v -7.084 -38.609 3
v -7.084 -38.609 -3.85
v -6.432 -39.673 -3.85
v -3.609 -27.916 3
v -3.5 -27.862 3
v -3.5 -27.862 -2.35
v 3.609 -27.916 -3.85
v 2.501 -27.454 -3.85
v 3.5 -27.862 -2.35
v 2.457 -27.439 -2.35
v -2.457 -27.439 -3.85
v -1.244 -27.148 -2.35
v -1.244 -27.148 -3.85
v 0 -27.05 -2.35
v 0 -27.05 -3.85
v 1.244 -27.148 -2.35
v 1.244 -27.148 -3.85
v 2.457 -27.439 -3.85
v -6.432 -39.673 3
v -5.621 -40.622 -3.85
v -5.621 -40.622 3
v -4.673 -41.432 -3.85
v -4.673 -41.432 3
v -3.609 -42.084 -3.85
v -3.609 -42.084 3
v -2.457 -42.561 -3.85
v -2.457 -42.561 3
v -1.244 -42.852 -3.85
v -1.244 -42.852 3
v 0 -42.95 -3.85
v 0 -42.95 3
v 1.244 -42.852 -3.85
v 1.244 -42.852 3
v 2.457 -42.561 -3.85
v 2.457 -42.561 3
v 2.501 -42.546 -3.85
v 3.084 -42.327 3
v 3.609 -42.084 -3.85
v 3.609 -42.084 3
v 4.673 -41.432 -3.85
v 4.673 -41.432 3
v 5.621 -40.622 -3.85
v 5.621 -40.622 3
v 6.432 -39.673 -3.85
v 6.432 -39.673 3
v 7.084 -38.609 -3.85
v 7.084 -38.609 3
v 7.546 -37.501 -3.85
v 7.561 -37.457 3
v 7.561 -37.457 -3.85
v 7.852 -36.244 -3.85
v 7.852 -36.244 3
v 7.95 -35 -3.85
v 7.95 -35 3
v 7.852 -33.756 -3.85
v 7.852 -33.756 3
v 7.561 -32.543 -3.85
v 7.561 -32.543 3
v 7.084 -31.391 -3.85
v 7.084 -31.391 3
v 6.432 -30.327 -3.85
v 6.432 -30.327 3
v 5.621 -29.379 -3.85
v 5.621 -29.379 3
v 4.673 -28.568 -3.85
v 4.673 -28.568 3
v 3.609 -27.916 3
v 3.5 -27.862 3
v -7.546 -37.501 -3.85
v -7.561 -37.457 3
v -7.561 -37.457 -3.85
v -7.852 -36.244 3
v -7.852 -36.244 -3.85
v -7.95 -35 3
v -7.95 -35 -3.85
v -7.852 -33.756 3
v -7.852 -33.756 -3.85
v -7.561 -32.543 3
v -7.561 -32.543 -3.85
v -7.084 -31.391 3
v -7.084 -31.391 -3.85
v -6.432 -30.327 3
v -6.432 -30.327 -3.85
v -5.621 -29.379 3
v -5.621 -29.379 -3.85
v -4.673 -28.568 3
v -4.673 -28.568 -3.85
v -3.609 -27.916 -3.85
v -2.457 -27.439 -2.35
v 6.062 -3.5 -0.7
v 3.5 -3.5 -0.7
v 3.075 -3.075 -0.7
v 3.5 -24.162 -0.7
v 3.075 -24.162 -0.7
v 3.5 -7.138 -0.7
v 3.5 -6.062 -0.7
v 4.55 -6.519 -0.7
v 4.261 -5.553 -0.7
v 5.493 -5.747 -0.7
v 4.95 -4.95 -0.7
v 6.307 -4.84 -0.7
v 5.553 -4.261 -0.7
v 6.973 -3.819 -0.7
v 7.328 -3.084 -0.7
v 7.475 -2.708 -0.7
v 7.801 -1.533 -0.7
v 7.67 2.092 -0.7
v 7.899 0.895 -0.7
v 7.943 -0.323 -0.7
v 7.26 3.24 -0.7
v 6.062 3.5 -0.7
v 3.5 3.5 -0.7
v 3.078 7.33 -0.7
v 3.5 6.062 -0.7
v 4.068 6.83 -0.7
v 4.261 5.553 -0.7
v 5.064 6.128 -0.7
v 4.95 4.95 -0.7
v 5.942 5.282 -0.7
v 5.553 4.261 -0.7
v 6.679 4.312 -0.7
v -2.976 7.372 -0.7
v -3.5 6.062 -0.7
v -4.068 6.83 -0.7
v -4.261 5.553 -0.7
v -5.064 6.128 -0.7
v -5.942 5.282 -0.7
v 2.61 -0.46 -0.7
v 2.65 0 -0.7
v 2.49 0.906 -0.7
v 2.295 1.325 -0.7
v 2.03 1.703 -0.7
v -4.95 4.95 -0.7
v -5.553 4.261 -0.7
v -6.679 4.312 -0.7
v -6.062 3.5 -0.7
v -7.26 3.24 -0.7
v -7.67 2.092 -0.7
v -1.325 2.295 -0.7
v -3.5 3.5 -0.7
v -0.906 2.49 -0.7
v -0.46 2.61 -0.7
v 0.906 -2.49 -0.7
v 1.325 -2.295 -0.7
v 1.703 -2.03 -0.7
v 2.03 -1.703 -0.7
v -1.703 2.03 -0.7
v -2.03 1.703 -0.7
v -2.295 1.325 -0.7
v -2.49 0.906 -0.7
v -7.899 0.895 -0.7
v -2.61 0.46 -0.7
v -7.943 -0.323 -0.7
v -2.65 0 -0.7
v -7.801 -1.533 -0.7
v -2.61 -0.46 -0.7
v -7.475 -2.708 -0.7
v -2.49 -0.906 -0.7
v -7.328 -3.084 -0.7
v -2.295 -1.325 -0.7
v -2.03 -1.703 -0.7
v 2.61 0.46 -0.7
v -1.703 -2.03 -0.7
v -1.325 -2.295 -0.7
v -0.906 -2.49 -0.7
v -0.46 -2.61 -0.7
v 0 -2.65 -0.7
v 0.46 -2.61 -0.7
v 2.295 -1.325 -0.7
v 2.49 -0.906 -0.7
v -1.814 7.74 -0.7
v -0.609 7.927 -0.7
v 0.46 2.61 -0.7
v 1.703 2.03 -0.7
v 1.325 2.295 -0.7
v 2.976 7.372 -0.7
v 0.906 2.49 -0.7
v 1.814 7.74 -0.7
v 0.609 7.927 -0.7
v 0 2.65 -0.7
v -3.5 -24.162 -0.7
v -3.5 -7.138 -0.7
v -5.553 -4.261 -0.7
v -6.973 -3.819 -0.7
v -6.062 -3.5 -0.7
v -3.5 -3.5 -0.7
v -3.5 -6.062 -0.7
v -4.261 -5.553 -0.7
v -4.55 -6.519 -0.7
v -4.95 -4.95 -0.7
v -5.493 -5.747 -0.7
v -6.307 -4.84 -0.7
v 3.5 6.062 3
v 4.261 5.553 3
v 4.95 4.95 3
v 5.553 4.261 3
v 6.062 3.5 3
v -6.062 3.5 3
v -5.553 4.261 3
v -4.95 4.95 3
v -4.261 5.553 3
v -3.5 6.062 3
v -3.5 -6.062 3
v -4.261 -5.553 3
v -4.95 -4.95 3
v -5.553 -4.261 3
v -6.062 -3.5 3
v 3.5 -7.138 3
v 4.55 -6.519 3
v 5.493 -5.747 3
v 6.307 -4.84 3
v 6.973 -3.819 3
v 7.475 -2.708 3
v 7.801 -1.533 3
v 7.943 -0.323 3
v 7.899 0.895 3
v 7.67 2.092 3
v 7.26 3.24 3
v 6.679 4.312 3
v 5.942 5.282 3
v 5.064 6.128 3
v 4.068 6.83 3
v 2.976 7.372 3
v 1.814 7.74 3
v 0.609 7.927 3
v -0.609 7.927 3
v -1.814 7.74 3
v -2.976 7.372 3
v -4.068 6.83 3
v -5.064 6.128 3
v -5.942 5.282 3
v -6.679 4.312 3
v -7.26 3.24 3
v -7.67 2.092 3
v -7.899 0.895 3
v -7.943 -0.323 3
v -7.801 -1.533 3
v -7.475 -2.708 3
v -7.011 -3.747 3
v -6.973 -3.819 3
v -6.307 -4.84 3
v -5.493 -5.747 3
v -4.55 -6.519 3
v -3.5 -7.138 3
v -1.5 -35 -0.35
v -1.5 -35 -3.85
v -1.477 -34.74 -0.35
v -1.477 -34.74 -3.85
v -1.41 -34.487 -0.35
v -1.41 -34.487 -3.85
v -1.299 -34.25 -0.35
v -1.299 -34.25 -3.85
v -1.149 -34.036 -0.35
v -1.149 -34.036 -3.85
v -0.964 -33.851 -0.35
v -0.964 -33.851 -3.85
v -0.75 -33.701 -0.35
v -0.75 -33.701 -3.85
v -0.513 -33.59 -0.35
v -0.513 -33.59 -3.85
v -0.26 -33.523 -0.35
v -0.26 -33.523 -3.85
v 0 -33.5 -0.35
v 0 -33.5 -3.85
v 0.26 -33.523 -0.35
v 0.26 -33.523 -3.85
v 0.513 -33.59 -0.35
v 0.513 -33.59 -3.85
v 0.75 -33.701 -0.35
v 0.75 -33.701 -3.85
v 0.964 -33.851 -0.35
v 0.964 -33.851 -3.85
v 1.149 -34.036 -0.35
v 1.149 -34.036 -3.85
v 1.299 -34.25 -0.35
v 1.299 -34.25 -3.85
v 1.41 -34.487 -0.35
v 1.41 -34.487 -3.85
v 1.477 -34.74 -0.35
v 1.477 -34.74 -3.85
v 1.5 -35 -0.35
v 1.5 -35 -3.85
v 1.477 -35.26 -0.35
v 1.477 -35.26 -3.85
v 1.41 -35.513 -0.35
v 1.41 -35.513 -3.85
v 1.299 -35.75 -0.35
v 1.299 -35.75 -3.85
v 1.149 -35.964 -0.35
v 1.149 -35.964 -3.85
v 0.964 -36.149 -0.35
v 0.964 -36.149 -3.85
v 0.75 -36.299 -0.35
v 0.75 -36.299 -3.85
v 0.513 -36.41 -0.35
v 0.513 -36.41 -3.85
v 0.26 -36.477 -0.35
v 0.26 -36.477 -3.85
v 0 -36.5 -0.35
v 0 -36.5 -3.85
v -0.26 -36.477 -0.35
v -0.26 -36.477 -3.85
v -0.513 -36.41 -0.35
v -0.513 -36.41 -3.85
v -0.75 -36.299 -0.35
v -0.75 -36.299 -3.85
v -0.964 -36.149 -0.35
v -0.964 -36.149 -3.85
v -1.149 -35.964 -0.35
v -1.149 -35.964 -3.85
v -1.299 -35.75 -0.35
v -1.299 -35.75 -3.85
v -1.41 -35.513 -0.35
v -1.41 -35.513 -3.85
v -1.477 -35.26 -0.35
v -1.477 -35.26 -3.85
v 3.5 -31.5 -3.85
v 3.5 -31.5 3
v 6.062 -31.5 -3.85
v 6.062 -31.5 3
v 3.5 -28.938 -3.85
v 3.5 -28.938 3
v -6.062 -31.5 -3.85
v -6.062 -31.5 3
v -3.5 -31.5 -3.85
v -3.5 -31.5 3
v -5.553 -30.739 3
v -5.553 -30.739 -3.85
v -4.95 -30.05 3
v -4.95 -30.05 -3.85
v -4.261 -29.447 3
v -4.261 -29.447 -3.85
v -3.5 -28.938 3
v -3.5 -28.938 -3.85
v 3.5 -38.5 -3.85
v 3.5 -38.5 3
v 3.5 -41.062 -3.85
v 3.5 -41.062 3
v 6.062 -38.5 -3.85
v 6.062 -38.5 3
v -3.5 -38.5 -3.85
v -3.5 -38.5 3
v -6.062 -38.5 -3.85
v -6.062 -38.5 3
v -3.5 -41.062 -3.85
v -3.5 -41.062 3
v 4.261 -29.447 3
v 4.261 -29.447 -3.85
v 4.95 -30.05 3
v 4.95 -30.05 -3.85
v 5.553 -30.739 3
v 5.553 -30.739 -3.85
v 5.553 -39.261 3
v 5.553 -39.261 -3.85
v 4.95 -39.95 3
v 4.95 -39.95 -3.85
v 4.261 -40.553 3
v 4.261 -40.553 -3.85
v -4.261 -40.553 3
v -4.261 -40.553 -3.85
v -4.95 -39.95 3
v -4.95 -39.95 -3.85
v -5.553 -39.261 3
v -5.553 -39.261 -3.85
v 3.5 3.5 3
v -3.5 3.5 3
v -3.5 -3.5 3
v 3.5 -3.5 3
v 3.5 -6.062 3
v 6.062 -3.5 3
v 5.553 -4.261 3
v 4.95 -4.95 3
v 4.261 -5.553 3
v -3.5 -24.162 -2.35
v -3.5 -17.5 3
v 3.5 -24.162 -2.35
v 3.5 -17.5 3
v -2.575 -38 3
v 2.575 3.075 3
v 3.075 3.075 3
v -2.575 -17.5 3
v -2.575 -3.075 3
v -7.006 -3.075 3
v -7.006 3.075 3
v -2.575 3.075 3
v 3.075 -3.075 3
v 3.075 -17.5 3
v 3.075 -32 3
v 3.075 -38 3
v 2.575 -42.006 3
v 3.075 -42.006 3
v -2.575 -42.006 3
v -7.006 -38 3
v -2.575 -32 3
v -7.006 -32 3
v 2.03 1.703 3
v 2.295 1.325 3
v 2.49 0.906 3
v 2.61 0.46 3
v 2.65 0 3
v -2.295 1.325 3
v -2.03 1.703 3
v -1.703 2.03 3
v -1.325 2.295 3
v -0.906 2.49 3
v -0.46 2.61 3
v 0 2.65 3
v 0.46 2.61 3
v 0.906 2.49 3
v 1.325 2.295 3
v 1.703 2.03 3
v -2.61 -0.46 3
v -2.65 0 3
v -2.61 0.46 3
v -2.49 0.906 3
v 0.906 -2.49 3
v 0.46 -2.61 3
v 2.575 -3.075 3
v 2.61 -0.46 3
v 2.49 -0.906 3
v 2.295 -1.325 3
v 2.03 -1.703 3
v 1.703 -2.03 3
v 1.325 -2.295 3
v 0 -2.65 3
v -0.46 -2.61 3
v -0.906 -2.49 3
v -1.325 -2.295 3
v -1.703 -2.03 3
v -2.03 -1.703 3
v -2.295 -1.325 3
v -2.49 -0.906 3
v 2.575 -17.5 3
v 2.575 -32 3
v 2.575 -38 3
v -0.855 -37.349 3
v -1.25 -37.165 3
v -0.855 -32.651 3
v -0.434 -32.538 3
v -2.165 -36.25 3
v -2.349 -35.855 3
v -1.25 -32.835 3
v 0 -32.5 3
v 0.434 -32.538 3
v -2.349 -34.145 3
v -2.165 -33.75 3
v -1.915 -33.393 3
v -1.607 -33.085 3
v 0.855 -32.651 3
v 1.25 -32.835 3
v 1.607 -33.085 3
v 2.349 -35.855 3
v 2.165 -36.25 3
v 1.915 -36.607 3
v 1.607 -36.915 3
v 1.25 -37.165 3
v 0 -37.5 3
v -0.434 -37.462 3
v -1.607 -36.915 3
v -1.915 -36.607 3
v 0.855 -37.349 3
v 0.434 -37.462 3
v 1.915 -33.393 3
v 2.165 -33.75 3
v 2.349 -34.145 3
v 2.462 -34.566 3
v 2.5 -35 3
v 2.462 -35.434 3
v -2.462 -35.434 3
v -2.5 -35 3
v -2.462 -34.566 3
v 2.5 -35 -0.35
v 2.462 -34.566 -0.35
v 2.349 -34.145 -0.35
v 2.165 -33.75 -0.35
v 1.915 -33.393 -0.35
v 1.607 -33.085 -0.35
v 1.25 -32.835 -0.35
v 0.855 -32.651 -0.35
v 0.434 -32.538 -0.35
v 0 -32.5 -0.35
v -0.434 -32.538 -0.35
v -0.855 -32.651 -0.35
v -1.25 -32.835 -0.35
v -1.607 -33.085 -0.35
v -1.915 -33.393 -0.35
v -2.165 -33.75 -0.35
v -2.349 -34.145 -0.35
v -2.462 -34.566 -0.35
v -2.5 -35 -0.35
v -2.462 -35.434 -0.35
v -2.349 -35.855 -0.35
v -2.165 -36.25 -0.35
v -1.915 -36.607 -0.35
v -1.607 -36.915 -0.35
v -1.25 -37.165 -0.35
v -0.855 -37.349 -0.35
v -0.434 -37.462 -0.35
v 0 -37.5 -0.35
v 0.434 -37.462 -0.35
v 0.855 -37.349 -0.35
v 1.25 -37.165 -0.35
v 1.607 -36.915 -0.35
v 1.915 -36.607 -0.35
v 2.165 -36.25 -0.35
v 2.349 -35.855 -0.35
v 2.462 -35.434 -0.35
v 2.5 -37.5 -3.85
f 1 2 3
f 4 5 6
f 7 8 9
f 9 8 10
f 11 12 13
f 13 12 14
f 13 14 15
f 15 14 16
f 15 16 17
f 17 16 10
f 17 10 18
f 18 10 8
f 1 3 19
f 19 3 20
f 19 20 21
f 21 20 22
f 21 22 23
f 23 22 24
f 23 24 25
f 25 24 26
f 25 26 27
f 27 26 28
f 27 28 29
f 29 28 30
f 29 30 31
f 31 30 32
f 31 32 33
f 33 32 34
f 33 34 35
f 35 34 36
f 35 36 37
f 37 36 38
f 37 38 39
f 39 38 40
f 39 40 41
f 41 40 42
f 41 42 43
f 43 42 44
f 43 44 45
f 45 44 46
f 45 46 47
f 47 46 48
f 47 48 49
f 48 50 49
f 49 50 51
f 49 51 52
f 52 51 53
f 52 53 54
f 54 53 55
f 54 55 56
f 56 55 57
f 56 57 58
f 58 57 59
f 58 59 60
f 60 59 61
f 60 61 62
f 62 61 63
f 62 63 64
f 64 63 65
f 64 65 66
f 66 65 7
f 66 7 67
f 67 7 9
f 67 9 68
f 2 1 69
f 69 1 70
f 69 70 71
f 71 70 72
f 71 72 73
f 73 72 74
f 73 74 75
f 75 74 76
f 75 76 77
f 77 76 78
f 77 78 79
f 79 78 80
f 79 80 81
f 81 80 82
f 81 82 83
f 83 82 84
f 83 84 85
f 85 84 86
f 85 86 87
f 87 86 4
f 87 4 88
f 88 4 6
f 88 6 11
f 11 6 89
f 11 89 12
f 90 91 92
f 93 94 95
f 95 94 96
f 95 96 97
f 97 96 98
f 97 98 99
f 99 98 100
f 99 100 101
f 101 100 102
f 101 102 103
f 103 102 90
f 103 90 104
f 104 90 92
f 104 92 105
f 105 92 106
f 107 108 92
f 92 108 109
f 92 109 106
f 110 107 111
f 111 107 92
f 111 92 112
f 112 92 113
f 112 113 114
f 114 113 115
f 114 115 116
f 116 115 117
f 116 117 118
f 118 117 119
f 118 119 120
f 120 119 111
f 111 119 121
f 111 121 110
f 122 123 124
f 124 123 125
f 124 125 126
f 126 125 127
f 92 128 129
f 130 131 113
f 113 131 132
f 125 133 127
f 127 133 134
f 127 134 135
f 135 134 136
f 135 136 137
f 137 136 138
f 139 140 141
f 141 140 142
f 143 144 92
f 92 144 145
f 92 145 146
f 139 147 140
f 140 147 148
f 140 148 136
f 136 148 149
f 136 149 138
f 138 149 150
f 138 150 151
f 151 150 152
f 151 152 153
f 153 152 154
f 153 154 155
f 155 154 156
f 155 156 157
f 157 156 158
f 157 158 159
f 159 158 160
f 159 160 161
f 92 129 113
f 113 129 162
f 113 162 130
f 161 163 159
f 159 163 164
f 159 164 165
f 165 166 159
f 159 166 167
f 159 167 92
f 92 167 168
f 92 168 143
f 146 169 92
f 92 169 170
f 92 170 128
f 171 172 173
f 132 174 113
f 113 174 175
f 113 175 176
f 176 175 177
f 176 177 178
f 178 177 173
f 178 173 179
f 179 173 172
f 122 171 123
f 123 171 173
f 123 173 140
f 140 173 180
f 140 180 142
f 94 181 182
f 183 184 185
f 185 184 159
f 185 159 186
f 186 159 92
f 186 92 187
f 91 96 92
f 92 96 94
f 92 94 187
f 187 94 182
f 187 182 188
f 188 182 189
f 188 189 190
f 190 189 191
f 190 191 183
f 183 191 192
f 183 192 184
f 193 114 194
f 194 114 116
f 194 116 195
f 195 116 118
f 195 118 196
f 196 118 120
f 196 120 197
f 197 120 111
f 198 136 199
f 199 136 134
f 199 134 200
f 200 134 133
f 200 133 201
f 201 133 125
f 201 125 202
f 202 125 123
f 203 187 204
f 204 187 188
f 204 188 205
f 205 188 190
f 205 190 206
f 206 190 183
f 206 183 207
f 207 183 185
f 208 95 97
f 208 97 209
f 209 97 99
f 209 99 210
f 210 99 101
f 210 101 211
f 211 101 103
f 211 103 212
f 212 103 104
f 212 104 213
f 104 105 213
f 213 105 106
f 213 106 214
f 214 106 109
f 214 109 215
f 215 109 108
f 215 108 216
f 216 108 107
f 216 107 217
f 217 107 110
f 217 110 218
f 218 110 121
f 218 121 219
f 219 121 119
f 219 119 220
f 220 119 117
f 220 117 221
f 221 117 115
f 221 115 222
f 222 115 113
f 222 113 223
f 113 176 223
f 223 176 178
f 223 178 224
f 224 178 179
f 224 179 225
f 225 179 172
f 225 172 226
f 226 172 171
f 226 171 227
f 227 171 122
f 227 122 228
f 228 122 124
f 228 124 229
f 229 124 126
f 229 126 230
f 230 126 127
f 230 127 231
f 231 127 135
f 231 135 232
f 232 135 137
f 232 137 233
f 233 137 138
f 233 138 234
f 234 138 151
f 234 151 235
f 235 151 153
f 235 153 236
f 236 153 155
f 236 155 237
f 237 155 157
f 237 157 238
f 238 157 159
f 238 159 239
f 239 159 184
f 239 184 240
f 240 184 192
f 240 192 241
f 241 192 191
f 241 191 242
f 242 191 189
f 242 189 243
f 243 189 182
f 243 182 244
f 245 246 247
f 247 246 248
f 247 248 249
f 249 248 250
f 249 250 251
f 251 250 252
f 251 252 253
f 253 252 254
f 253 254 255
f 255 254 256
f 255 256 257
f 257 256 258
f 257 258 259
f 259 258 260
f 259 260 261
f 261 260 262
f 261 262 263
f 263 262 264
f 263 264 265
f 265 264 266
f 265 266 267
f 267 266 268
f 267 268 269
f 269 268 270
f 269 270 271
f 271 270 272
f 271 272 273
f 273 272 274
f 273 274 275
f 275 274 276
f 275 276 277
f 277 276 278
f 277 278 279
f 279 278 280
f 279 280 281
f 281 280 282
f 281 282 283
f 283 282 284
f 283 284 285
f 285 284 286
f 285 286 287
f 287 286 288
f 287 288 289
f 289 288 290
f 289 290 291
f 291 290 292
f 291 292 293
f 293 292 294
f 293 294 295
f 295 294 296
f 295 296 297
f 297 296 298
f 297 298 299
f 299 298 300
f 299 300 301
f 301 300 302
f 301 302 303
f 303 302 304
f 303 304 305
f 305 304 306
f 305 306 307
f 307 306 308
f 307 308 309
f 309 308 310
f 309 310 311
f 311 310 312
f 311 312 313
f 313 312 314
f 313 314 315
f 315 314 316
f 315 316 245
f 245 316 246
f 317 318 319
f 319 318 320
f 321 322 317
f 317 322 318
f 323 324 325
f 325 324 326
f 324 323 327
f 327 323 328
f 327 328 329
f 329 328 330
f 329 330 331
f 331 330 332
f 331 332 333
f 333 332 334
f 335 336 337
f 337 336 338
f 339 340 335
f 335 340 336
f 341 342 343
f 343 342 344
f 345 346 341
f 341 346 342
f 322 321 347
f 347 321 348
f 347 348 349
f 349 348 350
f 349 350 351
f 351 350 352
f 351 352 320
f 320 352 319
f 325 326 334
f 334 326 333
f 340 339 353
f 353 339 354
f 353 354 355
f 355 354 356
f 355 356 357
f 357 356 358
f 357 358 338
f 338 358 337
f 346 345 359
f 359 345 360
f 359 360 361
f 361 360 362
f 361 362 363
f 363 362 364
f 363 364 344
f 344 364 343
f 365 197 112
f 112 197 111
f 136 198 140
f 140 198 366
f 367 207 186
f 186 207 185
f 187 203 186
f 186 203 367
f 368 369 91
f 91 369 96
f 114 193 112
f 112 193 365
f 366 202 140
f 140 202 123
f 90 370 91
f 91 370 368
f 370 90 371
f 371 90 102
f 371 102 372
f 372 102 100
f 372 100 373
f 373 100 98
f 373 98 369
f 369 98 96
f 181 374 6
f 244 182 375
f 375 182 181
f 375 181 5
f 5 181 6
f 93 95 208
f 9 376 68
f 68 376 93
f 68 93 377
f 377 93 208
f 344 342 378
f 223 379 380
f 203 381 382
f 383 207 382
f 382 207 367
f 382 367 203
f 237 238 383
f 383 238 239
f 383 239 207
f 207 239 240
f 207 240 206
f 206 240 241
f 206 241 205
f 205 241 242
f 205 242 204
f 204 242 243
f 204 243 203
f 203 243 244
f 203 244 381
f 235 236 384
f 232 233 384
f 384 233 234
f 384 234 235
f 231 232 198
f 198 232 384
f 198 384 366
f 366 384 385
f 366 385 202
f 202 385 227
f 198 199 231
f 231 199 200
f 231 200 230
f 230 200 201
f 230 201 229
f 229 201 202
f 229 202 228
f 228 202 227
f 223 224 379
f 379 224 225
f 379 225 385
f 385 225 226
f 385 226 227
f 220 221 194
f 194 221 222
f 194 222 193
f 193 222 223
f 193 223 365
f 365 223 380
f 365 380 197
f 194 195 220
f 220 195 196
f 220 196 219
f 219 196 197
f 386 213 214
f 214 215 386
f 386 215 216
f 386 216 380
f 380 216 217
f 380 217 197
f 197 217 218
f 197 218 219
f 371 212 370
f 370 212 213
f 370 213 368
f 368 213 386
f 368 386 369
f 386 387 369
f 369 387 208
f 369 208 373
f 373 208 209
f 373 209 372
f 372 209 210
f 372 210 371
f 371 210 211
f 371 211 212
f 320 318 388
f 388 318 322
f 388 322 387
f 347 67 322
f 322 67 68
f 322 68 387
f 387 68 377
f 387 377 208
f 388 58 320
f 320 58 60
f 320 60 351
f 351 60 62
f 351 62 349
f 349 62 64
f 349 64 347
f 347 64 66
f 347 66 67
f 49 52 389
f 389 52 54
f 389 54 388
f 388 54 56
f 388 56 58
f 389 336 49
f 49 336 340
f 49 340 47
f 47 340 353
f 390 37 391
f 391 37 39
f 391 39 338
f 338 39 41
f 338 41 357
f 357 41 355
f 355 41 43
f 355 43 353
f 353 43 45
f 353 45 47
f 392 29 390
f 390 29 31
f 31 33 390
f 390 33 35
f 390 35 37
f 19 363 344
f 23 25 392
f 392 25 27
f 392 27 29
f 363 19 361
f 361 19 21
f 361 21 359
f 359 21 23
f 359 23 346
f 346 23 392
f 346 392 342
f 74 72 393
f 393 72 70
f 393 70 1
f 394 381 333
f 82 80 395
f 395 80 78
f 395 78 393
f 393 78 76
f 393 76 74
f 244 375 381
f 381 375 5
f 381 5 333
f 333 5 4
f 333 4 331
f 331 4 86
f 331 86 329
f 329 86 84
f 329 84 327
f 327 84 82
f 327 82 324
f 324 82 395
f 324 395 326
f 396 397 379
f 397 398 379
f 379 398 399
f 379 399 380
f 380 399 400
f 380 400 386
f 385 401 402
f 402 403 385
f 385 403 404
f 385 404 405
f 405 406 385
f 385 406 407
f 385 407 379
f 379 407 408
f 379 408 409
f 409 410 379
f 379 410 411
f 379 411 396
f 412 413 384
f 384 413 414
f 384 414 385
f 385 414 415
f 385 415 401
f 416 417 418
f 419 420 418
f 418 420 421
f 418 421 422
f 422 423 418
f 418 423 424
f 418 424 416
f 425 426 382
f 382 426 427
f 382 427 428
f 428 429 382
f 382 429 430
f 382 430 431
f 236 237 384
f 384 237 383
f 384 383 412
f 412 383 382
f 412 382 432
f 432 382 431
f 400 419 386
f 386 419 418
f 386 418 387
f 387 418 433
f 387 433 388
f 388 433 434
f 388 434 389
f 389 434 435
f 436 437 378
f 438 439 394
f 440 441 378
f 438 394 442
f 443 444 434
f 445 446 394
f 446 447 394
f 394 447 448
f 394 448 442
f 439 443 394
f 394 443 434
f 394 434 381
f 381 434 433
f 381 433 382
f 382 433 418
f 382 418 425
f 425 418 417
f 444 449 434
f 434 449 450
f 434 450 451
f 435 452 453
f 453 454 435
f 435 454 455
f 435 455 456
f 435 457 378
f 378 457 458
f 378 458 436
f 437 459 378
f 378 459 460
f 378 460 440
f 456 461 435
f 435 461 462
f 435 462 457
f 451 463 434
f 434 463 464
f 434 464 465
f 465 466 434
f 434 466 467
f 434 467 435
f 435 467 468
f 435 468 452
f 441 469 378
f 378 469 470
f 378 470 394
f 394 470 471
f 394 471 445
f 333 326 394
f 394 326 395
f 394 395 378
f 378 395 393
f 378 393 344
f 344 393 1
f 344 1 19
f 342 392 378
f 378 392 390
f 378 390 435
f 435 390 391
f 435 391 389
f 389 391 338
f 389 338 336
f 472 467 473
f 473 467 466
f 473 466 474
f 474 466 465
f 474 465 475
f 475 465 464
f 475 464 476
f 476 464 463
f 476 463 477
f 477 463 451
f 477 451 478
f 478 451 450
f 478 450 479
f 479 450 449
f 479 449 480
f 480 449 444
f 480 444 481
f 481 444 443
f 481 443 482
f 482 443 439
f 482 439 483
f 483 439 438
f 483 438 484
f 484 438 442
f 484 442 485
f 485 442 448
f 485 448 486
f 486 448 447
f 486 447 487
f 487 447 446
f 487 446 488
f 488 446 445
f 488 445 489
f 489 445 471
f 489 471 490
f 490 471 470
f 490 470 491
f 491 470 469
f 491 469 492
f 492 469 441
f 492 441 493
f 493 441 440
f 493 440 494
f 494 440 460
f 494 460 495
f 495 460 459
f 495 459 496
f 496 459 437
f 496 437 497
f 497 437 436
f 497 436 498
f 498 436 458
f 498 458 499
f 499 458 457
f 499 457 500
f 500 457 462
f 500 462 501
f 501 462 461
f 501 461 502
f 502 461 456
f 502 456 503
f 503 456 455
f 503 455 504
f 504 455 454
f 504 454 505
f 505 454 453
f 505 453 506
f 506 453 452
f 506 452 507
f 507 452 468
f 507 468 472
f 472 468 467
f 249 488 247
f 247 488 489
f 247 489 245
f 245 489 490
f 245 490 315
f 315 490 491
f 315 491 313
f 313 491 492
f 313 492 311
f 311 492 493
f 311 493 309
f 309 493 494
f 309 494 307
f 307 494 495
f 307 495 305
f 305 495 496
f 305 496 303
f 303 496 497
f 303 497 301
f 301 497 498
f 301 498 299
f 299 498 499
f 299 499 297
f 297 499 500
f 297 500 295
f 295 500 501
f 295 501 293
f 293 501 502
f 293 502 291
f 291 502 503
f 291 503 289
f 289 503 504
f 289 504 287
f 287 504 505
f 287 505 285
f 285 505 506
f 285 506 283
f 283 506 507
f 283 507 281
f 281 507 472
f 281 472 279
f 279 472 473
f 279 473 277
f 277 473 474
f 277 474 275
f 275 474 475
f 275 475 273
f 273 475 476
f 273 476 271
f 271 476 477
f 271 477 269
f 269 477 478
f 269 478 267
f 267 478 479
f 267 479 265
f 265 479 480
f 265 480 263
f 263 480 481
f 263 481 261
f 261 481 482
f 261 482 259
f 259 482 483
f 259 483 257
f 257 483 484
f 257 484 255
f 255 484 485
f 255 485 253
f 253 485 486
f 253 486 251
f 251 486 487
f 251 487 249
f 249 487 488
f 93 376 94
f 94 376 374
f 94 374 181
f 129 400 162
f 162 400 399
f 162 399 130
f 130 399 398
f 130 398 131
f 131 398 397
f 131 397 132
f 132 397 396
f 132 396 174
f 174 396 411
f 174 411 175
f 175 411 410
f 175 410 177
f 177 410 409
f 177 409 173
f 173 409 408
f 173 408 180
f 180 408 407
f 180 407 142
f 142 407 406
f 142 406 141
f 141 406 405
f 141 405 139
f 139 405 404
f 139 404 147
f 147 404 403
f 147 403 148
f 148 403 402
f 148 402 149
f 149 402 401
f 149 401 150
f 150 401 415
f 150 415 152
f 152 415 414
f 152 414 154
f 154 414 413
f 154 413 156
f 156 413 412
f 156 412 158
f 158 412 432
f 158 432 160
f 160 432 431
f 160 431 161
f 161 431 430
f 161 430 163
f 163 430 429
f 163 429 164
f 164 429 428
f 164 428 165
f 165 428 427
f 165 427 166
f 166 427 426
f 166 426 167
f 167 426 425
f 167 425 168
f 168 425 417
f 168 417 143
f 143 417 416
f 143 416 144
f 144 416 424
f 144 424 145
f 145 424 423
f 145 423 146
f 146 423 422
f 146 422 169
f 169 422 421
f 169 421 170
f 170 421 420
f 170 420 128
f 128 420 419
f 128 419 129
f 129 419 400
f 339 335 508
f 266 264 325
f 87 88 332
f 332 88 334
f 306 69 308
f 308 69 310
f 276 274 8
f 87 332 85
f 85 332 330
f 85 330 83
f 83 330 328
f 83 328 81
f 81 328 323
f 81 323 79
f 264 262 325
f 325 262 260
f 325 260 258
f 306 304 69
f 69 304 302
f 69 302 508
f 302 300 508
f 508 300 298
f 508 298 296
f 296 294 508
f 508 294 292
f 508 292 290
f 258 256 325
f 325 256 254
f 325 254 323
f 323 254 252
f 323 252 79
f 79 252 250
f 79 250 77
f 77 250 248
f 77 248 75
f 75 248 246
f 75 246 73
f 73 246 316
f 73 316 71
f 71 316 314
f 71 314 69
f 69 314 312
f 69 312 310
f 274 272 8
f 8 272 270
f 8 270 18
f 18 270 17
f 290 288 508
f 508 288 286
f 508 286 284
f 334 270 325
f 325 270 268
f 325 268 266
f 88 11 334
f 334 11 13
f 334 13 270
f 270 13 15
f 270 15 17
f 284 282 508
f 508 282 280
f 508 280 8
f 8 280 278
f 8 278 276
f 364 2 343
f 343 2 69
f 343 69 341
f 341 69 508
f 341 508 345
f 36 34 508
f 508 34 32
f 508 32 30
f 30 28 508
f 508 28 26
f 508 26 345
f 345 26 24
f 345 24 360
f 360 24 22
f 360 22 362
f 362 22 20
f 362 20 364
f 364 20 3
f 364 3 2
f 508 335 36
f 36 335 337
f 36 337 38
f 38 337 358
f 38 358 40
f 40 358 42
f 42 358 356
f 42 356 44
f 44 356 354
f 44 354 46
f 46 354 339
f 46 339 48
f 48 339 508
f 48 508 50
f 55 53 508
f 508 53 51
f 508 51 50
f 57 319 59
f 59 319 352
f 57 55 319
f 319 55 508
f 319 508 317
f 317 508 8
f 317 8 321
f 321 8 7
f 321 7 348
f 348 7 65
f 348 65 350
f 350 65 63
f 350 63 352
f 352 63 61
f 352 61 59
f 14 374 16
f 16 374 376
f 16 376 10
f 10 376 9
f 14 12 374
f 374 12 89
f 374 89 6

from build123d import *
from build123d.topology import SkipClean

# Parameters (mm, degrees)
SKETCH1_R               = 3.5
SKETCH1_R_2             = 1.5
BOSS_EXTRUDE4_DEPTH     = 3
BOSS_EXTRUDE5_START     = 3
SKETCH3_R               = 1.5
BOSS_EXTRUDE5_DEPTH     = 3
SKETCH4_R               = 2.5
CUT_EXTRUDE1_DEPTH      = 1.5
SKETCH5_R               = 7
CUT_EXTRUDE2_DEPTH      = 2
SKETCH6_R               = 7.95
CUT_EXTRUDE3_DEPTH      = 1
SKETCH7_R               = 2.5
CUT_EXTRUDE4_DEPTH      = 1.85
BOSS_EXTRUDE6_START     = 0.7
SKETCH8_R               = 7.95
SKETCH8_R_2             = 7
BOSS_EXTRUDE6_DEPTH     = 0.7
BOSS_EXTRUDE8_START     = 0.7
SKETCH9_R               = 7.95
SKETCH9_R_2             = 1.5
BOSS_EXTRUDE8_DEPTH     = 0.7
BOSS_EXTRUDE9_START     = 0.7
BOSS_EXTRUDE9_DEPTH     = 0.7
CUT_EXTRUDE5_DEPTH      = 45.603755447
CUT_EXTRUDE5_DEPTH_BACK = 45.603755447
SKETCH11_W              = 3
SKETCH11_H              = 15.9
SKETCH11_W_2            = 2
BOSS_EXTRUDE10_START    = 0.65
BOSS_EXTRUDE10_DEPTH    = 0.65
BOSS_EXTRUDE11_START    = 2.65
SKETCH13_R              = 1.5
BOSS_EXTRUDE11_DEPTH    = 2.65
SKETCH14_R              = 2.65
CUT_EXTRUDE6_DEPTH      = 45.138730158
BOSS_EXTRUDE12_START    = 0.5
SKETCH15_R              = 7.95
SKETCH15_R_2            = 1.5
BOSS_EXTRUDE12_DEPTH    = 0.5
BOSS_EXTRUDE13_START    = 1
BOSS_EXTRUDE13_DEPTH    = 1


with BuildPart() as part:
    # Sketch1 → Boss-Extrude4 (new body)
    # profile 1 of 34: a face of its own
    with BuildSketch(Plane.XY):
        with BuildLine():
            Line((-3.5, 3.5), (0, 3.5))
            Line((0, 3.5), (3.5, 3.5))
            Line((3.5, 3.5), (3.5, 6.062177826))
            ThreePointArc((3.5, 6.062177826), (0, 7), (-3.5, 6.062177826))
            Line((-3.5, 6.062177826), (-3.5, 3.5))
        make_face()
    # profile 2 of 34: a face of its own
    with BuildSketch(Plane.XY):
        with BuildLine():
            ThreePointArc((3.5, 6.062177826), (4.949747468, 4.949747468), (6.062177826, 3.5))
            Line((6.062177826, 3.5), (7.138101989, 3.5))
            ThreePointArc((7.138101989, 3.5), (0, 7.95), (-7.138101989, 3.5))
            Line((-7.138101989, 3.5), (-6.062177826, 3.5))
            ThreePointArc((-6.062177826, 3.5), (-4.949747468, 4.949747468), (-3.5, 6.062177826))
            ThreePointArc((-3.5, 6.062177826), (0, 7), (3.5, 6.062177826))
        make_face()
    # profile 3 of 34: a face of its own
    with BuildSketch(Plane.XY):
        with BuildLine():
            Line((3.5, -27.861898011), (3.5, -7.138101989))
            ThreePointArc((3.5, -7.138101989), (0, -7.95), (-3.5, -7.138101989))
            Line((-3.5, -7.138101989), (-3.5, -27.861898011))
            ThreePointArc((-3.5, -27.861898011), (0, -27.05), (3.5, -27.861898011))
        make_face()
    # profile 4 of 34: a face of its own
    with BuildSketch(Plane.XY):
        with BuildLine():
            Line((-6.062177826, -38.5), (-7.138101989, -38.5))
            ThreePointArc((-7.138101989, -38.5), (0, -42.95), (7.138101989, -38.5))
            Line((7.138101989, -38.5), (6.062177826, -38.5))
            ThreePointArc((6.062177826, -38.5), (4.949747468, -39.949747468), (3.5, -41.062177826))
            ThreePointArc((3.5, -41.062177826), (0, -42), (-3.5, -41.062177826))
            ThreePointArc((-3.5, -41.062177826), (-4.949747468, -39.949747468), (-6.062177826, -38.5))
        make_face()
    # profile 5 of 34: a face of its own
    with BuildSketch(Plane.XY):
        with BuildLine():
            Line((3.5, -41.062177826), (3.5, -38.5))
            Line((3.5, -38.5), (0, -38.5))
            Line((0, -38.5), (-3.5, -38.5))
            Line((-3.5, -38.5), (-3.5, -41.062177826))
            ThreePointArc((-3.5, -41.062177826), (0, -42), (3.5, -41.062177826))
        make_face()
    # profile 6 of 34: a face of its own
    with BuildSketch(Plane.XY):
        with BuildLine():
            ThreePointArc((7.95, -35), (7.744366043, -33.203532746), (7.138101989, -31.5))
            Line((7.138101989, -31.5), (6.062177826, -31.5))
            ThreePointArc((6.062177826, -31.5), (6.761480784, -33.188266684), (7, -35))
            ThreePointArc((7, -35), (6.761480784, -36.811733316), (6.062177826, -38.5))
            Line((6.062177826, -38.5), (7.138101989, -38.5))
            ThreePointArc((7.138101989, -38.5), (7.744366043, -36.796467254), (7.95, -35))
        make_face()
    # profile 7 of 34: a face of its own
    with BuildSketch(Plane.XY):
        with BuildLine():
            Line((-6.062177826, -31.5), (-7.138101989, -31.5))
            ThreePointArc((-7.138101989, -31.5), (-7.95, -35), (-7.138101989, -38.5))
            Line((-7.138101989, -38.5), (-6.062177826, -38.5))
            ThreePointArc((-6.062177826, -38.5), (-7, -35), (-6.062177826, -31.5))
        make_face()
    # profile 8 of 34: a face of its own
    with BuildSketch(Plane.XY):
        with BuildLine():
            Line((3.5, -38.5), (3.5, -35))
            ThreePointArc((3.5, -35), (2.474873734, -37.474873734), (0, -38.5))
            Line((0, -38.5), (3.5, -38.5))
        make_face()
    # profile 9 of 34: a face of its own
    with BuildSketch(Plane.XY):
        with BuildLine():
            ThreePointArc((0, -38.5), (-2.474873734, -37.474873734), (-3.5, -35))
            Line((-3.5, -35), (-3.5, -38.5))
            Line((-3.5, -38.5), (0, -38.5))
        make_face()
    # profile 10 of 34: a face of its own
    with BuildSketch(Plane.XY):
        with BuildLine():
            ThreePointArc((7.95, -35), (7.744366043, -33.203532746), (7.138101989, -31.5))
            Line((7.138101989, -31.5), (6.062177826, -31.5))
            ThreePointArc((6.062177826, -31.5), (6.761480784, -33.188266684), (7, -35))
            ThreePointArc((7, -35), (6.761480784, -36.811733316), (6.062177826, -38.5))
            Line((6.062177826, -38.5), (7.138101989, -38.5))
            ThreePointArc((7.138101989, -38.5), (7.744366043, -36.796467254), (7.95, -35))
        make_face()
    # profile 11 of 34: a face of its own
    with BuildSketch(Plane.XY):
        with BuildLine():
            Line((-6.062177826, -31.5), (-7.138101989, -31.5))
            ThreePointArc((-7.138101989, -31.5), (-7.95, -35), (-7.138101989, -38.5))
            Line((-7.138101989, -38.5), (-6.062177826, -38.5))
            ThreePointArc((-6.062177826, -38.5), (-7, -35), (-6.062177826, -31.5))
        make_face()
    # profile 12 of 34: a face of its own
    with BuildSketch(Plane.XY):
        with Locations((0, -35)):
            Circle(SKETCH1_R)
        with Locations((0, -35)):
            Circle(SKETCH1_R_2, mode=Mode.SUBTRACT)
    # profile 13 of 34: a face of its own
    with BuildSketch(Plane.XY):
        with BuildLine():
            Line((0, -31.5), (-3.5, -31.5))
            Line((-3.5, -31.5), (-3.5, -35))
            ThreePointArc((-3.5, -35), (-2.474873734, -32.525126266), (0, -31.5))
        make_face()
    # profile 14 of 34: a face of its own
    with BuildSketch(Plane.XY):
        with BuildLine():
            Line((3.5, -35), (3.5, -31.5))
            Line((3.5, -31.5), (0, -31.5))
            ThreePointArc((0, -31.5), (2.474873734, -32.525126266), (3.5, -35))
        make_face()
    # profile 15 of 34: a face of its own
    with BuildSketch(Plane.XY):
        with BuildLine():
            Line((3.5, -31.5), (3.5, -28.937822174))
            ThreePointArc((3.5, -28.937822174), (0, -28), (-3.5, -28.937822174))
            Line((-3.5, -28.937822174), (-3.5, -31.5))
            Line((-3.5, -31.5), (0, -31.5))
            Line((0, -31.5), (3.5, -31.5))
        make_face()
    # profile 16 of 34: a face of its own
    with BuildSketch(Plane.XY):
        with BuildLine():
            Line((-3.5, -28.937822174), (-3.5, -27.861898011))
            ThreePointArc((-3.5, -27.861898011), (-5.62149891, -29.37850109), (-7.138101989, -31.5))
            Line((-7.138101989, -31.5), (-6.062177826, -31.5))
            ThreePointArc((-6.062177826, -31.5), (-4.949747468, -30.050252532), (-3.5, -28.937822174))
        make_face()
    # profile 17 of 34: a face of its own
    with BuildSketch(Plane.XY):
        with BuildLine():
            ThreePointArc((7.138101989, -31.5), (5.62149891, -29.37850109), (3.5, -27.861898011))
            Line((3.5, -27.861898011), (3.5, -28.937822174))
            ThreePointArc((3.5, -28.937822174), (4.949747468, -30.050252532), (6.062177826, -31.5))
            Line((6.062177826, -31.5), (7.138101989, -31.5))
        make_face()
    # profile 18 of 34: a face of its own
    with BuildSketch(Plane.XY):
        with BuildLine():
            Line((3.5, -28.937822174), (3.5, -27.861898011))
            ThreePointArc((3.5, -27.861898011), (0, -27.05), (-3.5, -27.861898011))
            Line((-3.5, -27.861898011), (-3.5, -28.937822174))
            ThreePointArc((-3.5, -28.937822174), (0, -28), (3.5, -28.937822174))
        make_face()
    # profile 19 of 34: a face of its own
    with BuildSketch(Plane.XY):
        with BuildLine():
            Line((-3.5, -35), (-3.5, -31.5))
            Line((-3.5, -31.5), (-6.062177826, -31.5))
            ThreePointArc((-6.062177826, -31.5), (-7, -35), (-6.062177826, -38.5))
            Line((-6.062177826, -38.5), (-3.5, -38.5))
            Line((-3.5, -38.5), (-3.5, -35))
        make_face()
    # profile 20 of 34: a face of its own
    with BuildSketch(Plane.XY):
        with BuildLine():
            Line((6.062177826, -31.5), (3.5, -31.5))
            Line((3.5, -31.5), (3.5, -35))
            Line((3.5, -35), (3.5, -38.5))
            Line((3.5, -38.5), (6.062177826, -38.5))
            ThreePointArc((6.062177826, -38.5), (6.761480784, -36.811733316), (7, -35))
            ThreePointArc((7, -35), (6.761480784, -33.188266684), (6.062177826, -31.5))
        make_face()
    # profile 21 of 34: a face of its own
    with BuildSketch(Plane.XY):
        with BuildLine():
            Line((3.5, -6.062177826), (3.5, -3.5))
            Line((3.5, -3.5), (0, -3.5))
            Line((0, -3.5), (-3.5, -3.5))
            Line((-3.5, -3.5), (-3.5, -6.062177826))
            ThreePointArc((-3.5, -6.062177826), (0, -7), (3.5, -6.062177826))
        make_face()
    # profile 22 of 34: a face of its own
    with BuildSketch(Plane.XY):
        with BuildLine():
            Line((3.5, -7.138101989), (3.5, -6.062177826))
            ThreePointArc((3.5, -6.062177826), (0, -7), (-3.5, -6.062177826))
            Line((-3.5, -6.062177826), (-3.5, -7.138101989))
            ThreePointArc((-3.5, -7.138101989), (0, -7.95), (3.5, -7.138101989))
        make_face()
    # profile 23 of 34: a face of its own
    with BuildSketch(Plane.XY):
        with BuildLine():
            Line((7.138101989, -3.5), (6.062177826, -3.5))
            ThreePointArc((6.062177826, -3.5), (4.949747468, -4.949747468), (3.5, -6.062177826))
            Line((3.5, -6.062177826), (3.5, -7.138101989))
            ThreePointArc((3.5, -7.138101989), (5.62149891, -5.62149891), (7.138101989, -3.5))
        make_face()
    # profile 24 of 34: a face of its own
    with BuildSketch(Plane.XY):
        with BuildLine():
            Line((7.138101989, 3.5), (6.062177826, 3.5))
            ThreePointArc((6.062177826, 3.5), (6.761480784, 1.811733316), (7, 0))
            ThreePointArc((7, 0), (6.761480784, -1.811733316), (6.062177826, -3.5))
            Line((6.062177826, -3.5), (7.138101989, -3.5))
            ThreePointArc((7.138101989, -3.5), (7.744366043, -1.796467254), (7.95, 0))
            ThreePointArc((7.95, 0), (7.744366043, 1.796467254), (7.138101989, 3.5))
        make_face()
    # profile 25 of 34: a face of its own
    with BuildSketch(Plane.XY):
        with BuildLine():
            Line((7.138101989, 3.5), (6.062177826, 3.5))
            ThreePointArc((6.062177826, 3.5), (6.761480784, 1.811733316), (7, 0))
            ThreePointArc((7, 0), (6.761480784, -1.811733316), (6.062177826, -3.5))
            Line((6.062177826, -3.5), (7.138101989, -3.5))
            ThreePointArc((7.138101989, -3.5), (7.744366043, -1.796467254), (7.95, 0))
            ThreePointArc((7.95, 0), (7.744366043, 1.796467254), (7.138101989, 3.5))
        make_face()
    # profile 26 of 34: a face of its own
    with BuildSketch(Plane.XY):
        with BuildLine():
            ThreePointArc((-6.062177826, -3.5), (-7, 0), (-6.062177826, 3.5))
            Line((-6.062177826, 3.5), (-7.138101989, 3.5))
            ThreePointArc((-7.138101989, 3.5), (-7.95, 0), (-7.138101989, -3.5))
            Line((-7.138101989, -3.5), (-6.062177826, -3.5))
        make_face()
    # profile 27 of 34: a face of its own
    with BuildSketch(Plane.XY):
        with BuildLine():
            ThreePointArc((-3.5, -6.062177826), (-4.949747468, -4.949747468), (-6.062177826, -3.5))
            Line((-6.062177826, -3.5), (-7.138101989, -3.5))
            ThreePointArc((-7.138101989, -3.5), (-5.62149891, -5.62149891), (-3.5, -7.138101989))
            Line((-3.5, -7.138101989), (-3.5, -6.062177826))
        make_face()
    # profile 28 of 34: a face of its own
    with BuildSketch(Plane.XY):
        with BuildLine():
            Line((-3.5, 0), (-3.5, 3.5))
            Line((-3.5, 3.5), (-6.062177826, 3.5))
            ThreePointArc((-6.062177826, 3.5), (-7, 0), (-6.062177826, -3.5))
            Line((-6.062177826, -3.5), (-3.5, -3.5))
            Line((-3.5, -3.5), (-3.5, 0))
        make_face()
    # profile 29 of 34: a face of its own
    with BuildSketch(Plane.XY):
        with BuildLine():
            Line((6.062177826, 3.5), (3.5, 3.5))
            Line((3.5, 3.5), (3.5, 0))
            Line((3.5, 0), (3.5, -3.5))
            Line((3.5, -3.5), (6.062177826, -3.5))
            ThreePointArc((6.062177826, -3.5), (6.761480784, -1.811733316), (7, 0))
            ThreePointArc((7, 0), (6.761480784, 1.811733316), (6.062177826, 3.5))
        make_face()
    # profile 30 of 34: a face of its own
    with BuildSketch(Plane.XY):
        with BuildLine():
            Line((3.5, -3.5), (3.5, 0))
            ThreePointArc((3.5, 0), (2.474873734, -2.474873734), (0, -3.5))
            Line((0, -3.5), (3.5, -3.5))
        make_face()
    # profile 31 of 34: a face of its own
    with BuildSketch(Plane.XY):
        Circle(SKETCH1_R)
        Circle(SKETCH1_R_2, mode=Mode.SUBTRACT)
    # profile 32 of 34: a face of its own
    with BuildSketch(Plane.XY):
        with BuildLine():
            ThreePointArc((0, -3.5), (-2.474873734, -2.474873734), (-3.5, 0))
            Line((-3.5, 0), (-3.5, -3.5))
            Line((-3.5, -3.5), (0, -3.5))
        make_face()
    # profile 33 of 34: a face of its own
    with BuildSketch(Plane.XY):
        with BuildLine():
            ThreePointArc((-3.5, 0), (-2.474873734, 2.474873734), (0, 3.5))
            Line((0, 3.5), (-3.5, 3.5))
            Line((-3.5, 3.5), (-3.5, 0))
        make_face()
    # profile 34 of 34: a face of its own
    with BuildSketch(Plane.XY):
        with BuildLine():
            Line((3.5, 3.5), (0, 3.5))
            ThreePointArc((0, 3.5), (2.474873734, 2.474873734), (3.5, 0))
            Line((3.5, 0), (3.5, 3.5))
        make_face()
    extrude(amount=BOSS_EXTRUDE4_DEPTH)

    # Sketch3 → Boss-Extrude5 (add)
    # profile 1 of 4: a face of its own
    with SkipClean():  # the faces are left unmerged after this step: merging them gives an invalid solid
        with BuildSketch(Plane(origin=(0, 0, 0), x_dir=(-1, 0, 0), z_dir=(0, 0, -1)).offset(BOSS_EXTRUDE5_START)):
            with BuildLine():
                ThreePointArc((3.5, -7.138101989), (6.746387922, -4.205799567), (7.95, 0))
                ThreePointArc((7.95, 0), (-4.205799567, 6.746387922), (-3.5, -7.138101989))
                ThreePointArc((-3.5, -7.138101989), (0, -7.95), (3.5, -7.138101989))
            make_face()
            with BuildLine():
                ThreePointArc((-6.062177826, 3.5), (-4.949747468, 4.949747468), (-3.5, 6.062177826))
                ThreePointArc((-3.5, 6.062177826), (0, 7), (3.5, 6.062177826))
                ThreePointArc((3.5, 6.062177826), (4.949747468, 4.949747468), (6.062177826, 3.5))
                ThreePointArc((6.062177826, 3.5), (6.761480784, 1.811733316), (7, 0))
                ThreePointArc((7, 0), (6.761480784, -1.811733316), (6.062177826, -3.5))
                ThreePointArc((6.062177826, -3.5), (4.949747468, -4.949747468), (3.5, -6.062177826))
                ThreePointArc((3.5, -6.062177826), (0, -7), (-3.5, -6.062177826))
                ThreePointArc((-3.5, -6.062177826), (-4.949747468, -4.949747468), (-6.062177826, -3.5))
                ThreePointArc((-6.062177826, -3.5), (-7, 0), (-6.062177826, 3.5))
            make_face(mode=Mode.SUBTRACT)
        # profile 2 of 4: a face of its own
        with BuildSketch(Plane(origin=(0, 0, 0), x_dir=(-1, 0, 0), z_dir=(0, 0, -1)).offset(BOSS_EXTRUDE5_START)):
            with BuildLine():
                ThreePointArc((3.5, 6.062177826), (0, 7), (-3.5, 6.062177826))
                Line((-3.5, 6.062177826), (-3.5, 3.5))
                Line((-3.5, 3.5), (-6.062177826, 3.5))
                ThreePointArc((-6.062177826, 3.5), (-7, 0), (-6.062177826, -3.5))
                Line((-6.062177826, -3.5), (-3.5, -3.5))
                Line((-3.5, -3.5), (-3.5, -6.062177826))
                ThreePointArc((-3.5, -6.062177826), (0, -7), (3.5, -6.062177826))
                Line((3.5, -6.062177826), (3.5, -3.5))
                Line((3.5, -3.5), (6.062177826, -3.5))
                ThreePointArc((6.062177826, -3.5), (6.761480784, -1.811733316), (7, 0))
                ThreePointArc((7, 0), (6.761480784, 1.811733316), (6.062177826, 3.5))
                Line((6.062177826, 3.5), (3.5, 3.5))
                Line((3.5, 3.5), (3.5, 6.062177826))
            make_face()
            Circle(SKETCH3_R, mode=Mode.SUBTRACT)
        # profile 3 of 4: a face of its own
        with BuildSketch(Plane(origin=(0, 0, 0), x_dir=(-1, 0, 0), z_dir=(0, 0, -1)).offset(BOSS_EXTRUDE5_START)):
            with BuildLine():
                ThreePointArc((-3.5, -27.861898011), (-4.205799567, -41.746387922), (7.95, -35))
                ThreePointArc((7.95, -35), (6.746387922, -30.794200433), (3.5, -27.861898011))
                ThreePointArc((3.5, -27.861898011), (0, -27.05), (-3.5, -27.861898011))
            make_face()
            with BuildLine():
                ThreePointArc((6.062177826, -38.5), (4.949747468, -39.949747468), (3.5, -41.062177826))
                ThreePointArc((3.5, -41.062177826), (0, -42), (-3.5, -41.062177826))
                ThreePointArc((-3.5, -41.062177826), (-4.949747468, -39.949747468), (-6.062177826, -38.5))
                ThreePointArc((-6.062177826, -38.5), (-7, -35), (-6.062177826, -31.5))
                ThreePointArc((-6.062177826, -31.5), (-4.949747468, -30.050252532), (-3.5, -28.937822174))
                ThreePointArc((-3.5, -28.937822174), (0, -28), (3.5, -28.937822174))
                ThreePointArc((3.5, -28.937822174), (4.949747468, -30.050252532), (6.062177826, -31.5))
                ThreePointArc((6.062177826, -31.5), (6.761480784, -33.188266684), (7, -35))
                ThreePointArc((7, -35), (6.761480784, -36.811733316), (6.062177826, -38.5))
            make_face(mode=Mode.SUBTRACT)
        # profile 4 of 4: a face of its own
        with BuildSketch(Plane(origin=(0, 0, 0), x_dir=(-1, 0, 0), z_dir=(0, 0, -1)).offset(BOSS_EXTRUDE5_START)):
            with BuildLine():
                ThreePointArc((-3.5, -41.062177826), (0, -42), (3.5, -41.062177826))
                Line((3.5, -41.062177826), (3.5, -38.5))
                Line((3.5, -38.5), (6.062177826, -38.5))
                ThreePointArc((6.062177826, -38.5), (6.761480784, -36.811733316), (7, -35))
                ThreePointArc((7, -35), (6.761480784, -33.188266684), (6.062177826, -31.5))
                Line((6.062177826, -31.5), (3.5, -31.5))
                Line((3.5, -31.5), (3.5, -28.937822174))
                ThreePointArc((3.5, -28.937822174), (0, -28), (-3.5, -28.937822174))
                Line((-3.5, -28.937822174), (-3.5, -31.5))
                Line((-3.5, -31.5), (-6.062177826, -31.5))
                ThreePointArc((-6.062177826, -31.5), (-7, -35), (-6.062177826, -38.5))
                Line((-6.062177826, -38.5), (-3.5, -38.5))
                Line((-3.5, -38.5), (-3.5, -41.062177826))
            make_face()
            with Locations((0, -35)):
                Circle(SKETCH3_R, mode=Mode.SUBTRACT)
        extrude(amount=-BOSS_EXTRUDE5_DEPTH)

    # Sketch4 → Cut-Extrude1 (cut)
    with SkipClean():  # the faces are left unmerged after this step: merging them gives an invalid solid
        with BuildSketch(Plane.XY.offset(3)):
            with Locations((0, -35)):
                Circle(SKETCH4_R)
            with Locations(Location((0, 0, 0), (0, 0, 180))):
                Circle(SKETCH4_R)
        extrude(amount=-CUT_EXTRUDE1_DEPTH, mode=Mode.SUBTRACT)

    # Sketch5 → Cut-Extrude2 (cut)
    with SkipClean():  # the faces are left unmerged after this step: merging them gives an invalid solid
        with BuildSketch(Plane(origin=(0, 0, -3), x_dir=(-1, 0, 0), z_dir=(0, 0, -1))):
            Circle(SKETCH5_R)
        extrude(amount=-CUT_EXTRUDE2_DEPTH, mode=Mode.SUBTRACT)

    # Sketch6 → Cut-Extrude3 (cut)
    with SkipClean():  # the faces are left unmerged after this step: merging them gives an invalid solid
        with BuildSketch(Plane(origin=(0, 0, -3), x_dir=(-1, 0, 0), z_dir=(0, 0, -1))):
            with Locations((0, -35)):
                Circle(SKETCH6_R)
        extrude(amount=-CUT_EXTRUDE3_DEPTH, mode=Mode.SUBTRACT)

    # Sketch7 → Cut-Extrude4 (cut)
    with SkipClean():  # the faces are left unmerged after this step: merging them gives an invalid solid
        with BuildSketch(Plane.XY.offset(1.5)):
            with Locations((0, -35)):
                Circle(SKETCH7_R)
        extrude(amount=-CUT_EXTRUDE4_DEPTH, mode=Mode.SUBTRACT)

    # Sketch8 → Boss-Extrude6 (add)
    with SkipClean():  # the faces are left unmerged after this step: merging them gives an invalid solid
        with BuildSketch(Plane(origin=(0, 0, -3), x_dir=(-1, 0, 0), z_dir=(0, 0, -1)).offset(BOSS_EXTRUDE6_START)):
            Circle(SKETCH8_R)
            Circle(SKETCH8_R_2, mode=Mode.SUBTRACT)
        extrude(amount=-BOSS_EXTRUDE6_DEPTH)

    # Sketch9 → Boss-Extrude8 (add)
    # profile 1 of 2: a face of its own
    with SkipClean():  # the faces are left unmerged after this step: merging them gives an invalid solid
        with BuildSketch(Plane(origin=(0, 0, -2), x_dir=(-1, 0, 0), z_dir=(0, 0, -1)).offset(BOSS_EXTRUDE8_START)):
            with Locations((0, -35)):
                Circle(SKETCH9_R)
            with BuildLine():
                ThreePointArc((-6.062177826, -31.5), (-4.949747468, -30.050252532), (-3.5, -28.937822174))
                ThreePointArc((-3.5, -28.937822174), (0, -28), (3.5, -28.937822174))
                ThreePointArc((3.5, -28.937822174), (4.949747468, -30.050252532), (6.062177826, -31.5))
                ThreePointArc((6.062177826, -31.5), (6.761480784, -33.188266684), (7, -35))
                ThreePointArc((7, -35), (6.761480784, -36.811733316), (6.062177826, -38.5))
                ThreePointArc((6.062177826, -38.5), (4.949747468, -39.949747468), (3.5, -41.062177826))
                ThreePointArc((3.5, -41.062177826), (0, -42), (-3.5, -41.062177826))
                ThreePointArc((-3.5, -41.062177826), (-4.949747468, -39.949747468), (-6.062177826, -38.5))
                ThreePointArc((-6.062177826, -38.5), (-7, -35), (-6.062177826, -31.5))
            make_face(mode=Mode.SUBTRACT)
        # profile 2 of 2: a face of its own
        with BuildSketch(Plane(origin=(0, 0, -2), x_dir=(-1, 0, 0), z_dir=(0, 0, -1)).offset(BOSS_EXTRUDE8_START)):
            with BuildLine():
                ThreePointArc((3.5, -28.937822174), (0, -28), (-3.5, -28.937822174))
                Line((-3.5, -28.937822174), (-3.5, -31.5))
                Line((-3.5, -31.5), (-6.062177826, -31.5))
                ThreePointArc((-6.062177826, -31.5), (-7, -35), (-6.062177826, -38.5))
                Line((-6.062177826, -38.5), (-3.5, -38.5))
                Line((-3.5, -38.5), (-3.5, -41.062177826))
                ThreePointArc((-3.5, -41.062177826), (0, -42), (3.5, -41.062177826))
                Line((3.5, -41.062177826), (3.5, -38.5))
                Line((3.5, -38.5), (6.062177826, -38.5))
                ThreePointArc((6.062177826, -38.5), (6.761480784, -36.811733316), (7, -35))
                ThreePointArc((7, -35), (6.761480784, -33.188266684), (6.062177826, -31.5))
                Line((6.062177826, -31.5), (3.5, -31.5))
                Line((3.5, -31.5), (3.5, -28.937822174))
            make_face()
            with Locations((0, -35)):
                Circle(SKETCH9_R_2, mode=Mode.SUBTRACT)
        extrude(amount=-BOSS_EXTRUDE8_DEPTH)

    # Sketch10 → Boss-Extrude9 (add)
    with SkipClean():  # the faces are left unmerged after this step: merging them gives an invalid solid
        with BuildSketch(Plane(origin=(0, 0, 0), x_dir=(-1, 0, 0), z_dir=(0, 0, -1)).offset(BOSS_EXTRUDE9_START)):
            with BuildLine():
                ThreePointArc((3.5, -7.138101989), (0, -7.95), (-3.5, -7.138101989))
                Line((-3.5, -7.138101989), (-3.5, -27.861898011))
                ThreePointArc((-3.5, -27.861898011), (0, -27.05), (3.5, -27.861898011))
                Line((3.5, -27.861898011), (3.5, -7.138101989))
            make_face()
        extrude(amount=-BOSS_EXTRUDE9_DEPTH)

    # Sketch11 → Cut-Extrude5 (cut, two sides: drawn at the far end of the back side and taken through both)
    with SkipClean():  # the faces are left unmerged after this step: merging them gives an invalid solid
        with BuildSketch(Plane(origin=(3.5, 0, 0), x_dir=(0, 0, -1), z_dir=(1, 0, 0)).offset(-CUT_EXTRUDE5_DEPTH_BACK)):
            with Locations((2.2, 0)):
                Rectangle(SKETCH11_W, SKETCH11_H)
            with Locations((1.7, -35)):
                Rectangle(SKETCH11_W_2, SKETCH11_H)
        extrude(amount=CUT_EXTRUDE5_DEPTH + CUT_EXTRUDE5_DEPTH_BACK, mode=Mode.SUBTRACT)

    # Sketch12 → Boss-Extrude10 (add)
    with SkipClean():  # the faces are left unmerged after this step: merging them gives an invalid solid
        with BuildSketch(Plane(origin=(0, 0, -0.7), x_dir=(-1, 0, 0), z_dir=(0, 0, -1)).offset(BOSS_EXTRUDE10_START)):
            with BuildLine():
                Line((-3.5, -24.161898011), (-3.5, -27.861898011))
                ThreePointArc((-3.5, -27.861898011), (0, -27.05), (3.5, -27.861898011))
                Line((3.5, -27.861898011), (3.5, -24.161898011))
                Line((3.5, -24.161898011), (-3.5, -24.161898011))
            make_face()
        extrude(amount=-BOSS_EXTRUDE10_DEPTH)

    # Sketch13 → Boss-Extrude11 (add)
    # profile 1 of 2: a face of its own
    with SkipClean():  # the faces are left unmerged after this step: merging them gives an invalid solid
        with BuildSketch(Plane(origin=(0, 0, -0.7), x_dir=(-1, 0, 0), z_dir=(0, 0, -1)).offset(BOSS_EXTRUDE11_START)):
            with BuildLine():
                ThreePointArc((-3.5, -27.861898011), (-4.205799567, -41.746387922), (7.95, -35))
                ThreePointArc((7.95, -35), (6.746387922, -30.794200433), (3.5, -27.861898011))
                ThreePointArc((3.5, -27.861898011), (0, -27.05), (-3.5, -27.861898011))
            make_face()
            with BuildLine():
                ThreePointArc((-6.062177826, -38.5), (-7, -35), (-6.062177826, -31.5))
                ThreePointArc((-6.062177826, -31.5), (-4.949747468, -30.050252532), (-3.5, -28.937822174))
                ThreePointArc((-3.5, -28.937822174), (0, -28), (3.5, -28.937822174))
                ThreePointArc((3.5, -28.937822174), (4.949747468, -30.050252532), (6.062177826, -31.5))
                ThreePointArc((6.062177826, -31.5), (6.761480784, -33.188266684), (7, -35))
                ThreePointArc((7, -35), (6.761480784, -36.811733316), (6.062177826, -38.5))
                ThreePointArc((6.062177826, -38.5), (4.949747468, -39.949747468), (3.5, -41.062177826))
                ThreePointArc((3.5, -41.062177826), (0, -42), (-3.5, -41.062177826))
                ThreePointArc((-3.5, -41.062177826), (-4.949747468, -39.949747468), (-6.062177826, -38.5))
            make_face(mode=Mode.SUBTRACT)
        # profile 2 of 2: a face of its own
        with BuildSketch(Plane(origin=(0, 0, -0.7), x_dir=(-1, 0, 0), z_dir=(0, 0, -1)).offset(BOSS_EXTRUDE11_START)):
            with BuildLine():
                Line((-3.5, -31.5), (-6.062177826, -31.5))
                ThreePointArc((-6.062177826, -31.5), (-7, -35), (-6.062177826, -38.5))
                Line((-6.062177826, -38.5), (-3.5, -38.5))
                Line((-3.5, -38.5), (-3.5, -41.062177826))
                ThreePointArc((-3.5, -41.062177826), (0, -42), (3.5, -41.062177826))
                Line((3.5, -41.062177826), (3.5, -38.5))
                Line((3.5, -38.5), (6.062177826, -38.5))
                ThreePointArc((6.062177826, -38.5), (6.761480784, -36.811733316), (7, -35))
                ThreePointArc((7, -35), (6.761480784, -33.188266684), (6.062177826, -31.5))
                Line((6.062177826, -31.5), (3.5, -31.5))
                Line((3.5, -31.5), (3.5, -28.937822174))
                ThreePointArc((3.5, -28.937822174), (0, -28), (-3.5, -28.937822174))
                Line((-3.5, -28.937822174), (-3.5, -31.5))
            make_face()
            with Locations((0, -35)):
                Circle(SKETCH13_R, mode=Mode.SUBTRACT)
        extrude(amount=-BOSS_EXTRUDE11_DEPTH)

    # Sketch14 → Cut-Extrude6 (cut, through all)
    with SkipClean():  # the faces are left unmerged after this step: merging them gives an invalid solid
        with BuildSketch(Plane.XY.offset(3)):
            Circle(SKETCH14_R)
        extrude(amount=-CUT_EXTRUDE6_DEPTH, mode=Mode.SUBTRACT)

    # Sketch15 → Boss-Extrude12 (add)
    with SkipClean():  # the faces are left unmerged after this step: merging them gives an invalid solid
        with BuildSketch(Plane(origin=(0, 0, -3.35), x_dir=(-1, 0, 0), z_dir=(0, 0, -1)).offset(BOSS_EXTRUDE12_START)):
            with Locations((0, -35)):
                Circle(SKETCH15_R)
            with Locations((0, -35)):
                Circle(SKETCH15_R_2, mode=Mode.SUBTRACT)
            with BuildLine():
                Line((3.5, -41.062177826), (3.5, -38.5))
                Line((3.5, -38.5), (6.062177826, -38.5))
                ThreePointArc((6.062177826, -38.5), (4.949747468, -39.949747468), (3.5, -41.062177826))
            make_face(mode=Mode.SUBTRACT)
            with BuildLine():
                Line((-3.5, -38.5), (-3.5, -41.062177826))
                ThreePointArc((-3.5, -41.062177826), (-4.949747468, -39.949747468), (-6.062177826, -38.5))
                Line((-6.062177826, -38.5), (-3.5, -38.5))
            make_face(mode=Mode.SUBTRACT)
            with BuildLine():
                Line((-3.5, -31.5), (-6.062177826, -31.5))
                ThreePointArc((-6.062177826, -31.5), (-4.949747468, -30.050252532), (-3.5, -28.937822174))
                Line((-3.5, -28.937822174), (-3.5, -31.5))
            make_face(mode=Mode.SUBTRACT)
            with BuildLine():
                Line((3.5, -31.5), (3.5, -28.937822174))
                ThreePointArc((3.5, -28.937822174), (4.949747468, -30.050252532), (6.062177826, -31.5))
                Line((6.062177826, -31.5), (3.5, -31.5))
            make_face(mode=Mode.SUBTRACT)
        extrude(amount=-BOSS_EXTRUDE12_DEPTH)

    # Sketch17 → Boss-Extrude13 (add)
    with SkipClean():  # the faces are left unmerged after this step: merging them gives an invalid solid
        with BuildSketch(Plane(origin=(0, 0, -1.35), x_dir=(-1, 0, 0), z_dir=(0, 0, -1)).offset(BOSS_EXTRUDE13_START)):
            with BuildLine():
                Line((-3.5, -24.161898011), (-3.5, -27.861898011))
                ThreePointArc((-3.5, -27.861898011), (0, -27.05), (3.5, -27.861898011))
                Line((3.5, -27.861898011), (3.5, -24.161898011))
                Line((3.5, -24.161898011), (-3.5, -24.161898011))
            make_face()
        extrude(amount=-BOSS_EXTRUDE13_DEPTH)


solid = part.part
